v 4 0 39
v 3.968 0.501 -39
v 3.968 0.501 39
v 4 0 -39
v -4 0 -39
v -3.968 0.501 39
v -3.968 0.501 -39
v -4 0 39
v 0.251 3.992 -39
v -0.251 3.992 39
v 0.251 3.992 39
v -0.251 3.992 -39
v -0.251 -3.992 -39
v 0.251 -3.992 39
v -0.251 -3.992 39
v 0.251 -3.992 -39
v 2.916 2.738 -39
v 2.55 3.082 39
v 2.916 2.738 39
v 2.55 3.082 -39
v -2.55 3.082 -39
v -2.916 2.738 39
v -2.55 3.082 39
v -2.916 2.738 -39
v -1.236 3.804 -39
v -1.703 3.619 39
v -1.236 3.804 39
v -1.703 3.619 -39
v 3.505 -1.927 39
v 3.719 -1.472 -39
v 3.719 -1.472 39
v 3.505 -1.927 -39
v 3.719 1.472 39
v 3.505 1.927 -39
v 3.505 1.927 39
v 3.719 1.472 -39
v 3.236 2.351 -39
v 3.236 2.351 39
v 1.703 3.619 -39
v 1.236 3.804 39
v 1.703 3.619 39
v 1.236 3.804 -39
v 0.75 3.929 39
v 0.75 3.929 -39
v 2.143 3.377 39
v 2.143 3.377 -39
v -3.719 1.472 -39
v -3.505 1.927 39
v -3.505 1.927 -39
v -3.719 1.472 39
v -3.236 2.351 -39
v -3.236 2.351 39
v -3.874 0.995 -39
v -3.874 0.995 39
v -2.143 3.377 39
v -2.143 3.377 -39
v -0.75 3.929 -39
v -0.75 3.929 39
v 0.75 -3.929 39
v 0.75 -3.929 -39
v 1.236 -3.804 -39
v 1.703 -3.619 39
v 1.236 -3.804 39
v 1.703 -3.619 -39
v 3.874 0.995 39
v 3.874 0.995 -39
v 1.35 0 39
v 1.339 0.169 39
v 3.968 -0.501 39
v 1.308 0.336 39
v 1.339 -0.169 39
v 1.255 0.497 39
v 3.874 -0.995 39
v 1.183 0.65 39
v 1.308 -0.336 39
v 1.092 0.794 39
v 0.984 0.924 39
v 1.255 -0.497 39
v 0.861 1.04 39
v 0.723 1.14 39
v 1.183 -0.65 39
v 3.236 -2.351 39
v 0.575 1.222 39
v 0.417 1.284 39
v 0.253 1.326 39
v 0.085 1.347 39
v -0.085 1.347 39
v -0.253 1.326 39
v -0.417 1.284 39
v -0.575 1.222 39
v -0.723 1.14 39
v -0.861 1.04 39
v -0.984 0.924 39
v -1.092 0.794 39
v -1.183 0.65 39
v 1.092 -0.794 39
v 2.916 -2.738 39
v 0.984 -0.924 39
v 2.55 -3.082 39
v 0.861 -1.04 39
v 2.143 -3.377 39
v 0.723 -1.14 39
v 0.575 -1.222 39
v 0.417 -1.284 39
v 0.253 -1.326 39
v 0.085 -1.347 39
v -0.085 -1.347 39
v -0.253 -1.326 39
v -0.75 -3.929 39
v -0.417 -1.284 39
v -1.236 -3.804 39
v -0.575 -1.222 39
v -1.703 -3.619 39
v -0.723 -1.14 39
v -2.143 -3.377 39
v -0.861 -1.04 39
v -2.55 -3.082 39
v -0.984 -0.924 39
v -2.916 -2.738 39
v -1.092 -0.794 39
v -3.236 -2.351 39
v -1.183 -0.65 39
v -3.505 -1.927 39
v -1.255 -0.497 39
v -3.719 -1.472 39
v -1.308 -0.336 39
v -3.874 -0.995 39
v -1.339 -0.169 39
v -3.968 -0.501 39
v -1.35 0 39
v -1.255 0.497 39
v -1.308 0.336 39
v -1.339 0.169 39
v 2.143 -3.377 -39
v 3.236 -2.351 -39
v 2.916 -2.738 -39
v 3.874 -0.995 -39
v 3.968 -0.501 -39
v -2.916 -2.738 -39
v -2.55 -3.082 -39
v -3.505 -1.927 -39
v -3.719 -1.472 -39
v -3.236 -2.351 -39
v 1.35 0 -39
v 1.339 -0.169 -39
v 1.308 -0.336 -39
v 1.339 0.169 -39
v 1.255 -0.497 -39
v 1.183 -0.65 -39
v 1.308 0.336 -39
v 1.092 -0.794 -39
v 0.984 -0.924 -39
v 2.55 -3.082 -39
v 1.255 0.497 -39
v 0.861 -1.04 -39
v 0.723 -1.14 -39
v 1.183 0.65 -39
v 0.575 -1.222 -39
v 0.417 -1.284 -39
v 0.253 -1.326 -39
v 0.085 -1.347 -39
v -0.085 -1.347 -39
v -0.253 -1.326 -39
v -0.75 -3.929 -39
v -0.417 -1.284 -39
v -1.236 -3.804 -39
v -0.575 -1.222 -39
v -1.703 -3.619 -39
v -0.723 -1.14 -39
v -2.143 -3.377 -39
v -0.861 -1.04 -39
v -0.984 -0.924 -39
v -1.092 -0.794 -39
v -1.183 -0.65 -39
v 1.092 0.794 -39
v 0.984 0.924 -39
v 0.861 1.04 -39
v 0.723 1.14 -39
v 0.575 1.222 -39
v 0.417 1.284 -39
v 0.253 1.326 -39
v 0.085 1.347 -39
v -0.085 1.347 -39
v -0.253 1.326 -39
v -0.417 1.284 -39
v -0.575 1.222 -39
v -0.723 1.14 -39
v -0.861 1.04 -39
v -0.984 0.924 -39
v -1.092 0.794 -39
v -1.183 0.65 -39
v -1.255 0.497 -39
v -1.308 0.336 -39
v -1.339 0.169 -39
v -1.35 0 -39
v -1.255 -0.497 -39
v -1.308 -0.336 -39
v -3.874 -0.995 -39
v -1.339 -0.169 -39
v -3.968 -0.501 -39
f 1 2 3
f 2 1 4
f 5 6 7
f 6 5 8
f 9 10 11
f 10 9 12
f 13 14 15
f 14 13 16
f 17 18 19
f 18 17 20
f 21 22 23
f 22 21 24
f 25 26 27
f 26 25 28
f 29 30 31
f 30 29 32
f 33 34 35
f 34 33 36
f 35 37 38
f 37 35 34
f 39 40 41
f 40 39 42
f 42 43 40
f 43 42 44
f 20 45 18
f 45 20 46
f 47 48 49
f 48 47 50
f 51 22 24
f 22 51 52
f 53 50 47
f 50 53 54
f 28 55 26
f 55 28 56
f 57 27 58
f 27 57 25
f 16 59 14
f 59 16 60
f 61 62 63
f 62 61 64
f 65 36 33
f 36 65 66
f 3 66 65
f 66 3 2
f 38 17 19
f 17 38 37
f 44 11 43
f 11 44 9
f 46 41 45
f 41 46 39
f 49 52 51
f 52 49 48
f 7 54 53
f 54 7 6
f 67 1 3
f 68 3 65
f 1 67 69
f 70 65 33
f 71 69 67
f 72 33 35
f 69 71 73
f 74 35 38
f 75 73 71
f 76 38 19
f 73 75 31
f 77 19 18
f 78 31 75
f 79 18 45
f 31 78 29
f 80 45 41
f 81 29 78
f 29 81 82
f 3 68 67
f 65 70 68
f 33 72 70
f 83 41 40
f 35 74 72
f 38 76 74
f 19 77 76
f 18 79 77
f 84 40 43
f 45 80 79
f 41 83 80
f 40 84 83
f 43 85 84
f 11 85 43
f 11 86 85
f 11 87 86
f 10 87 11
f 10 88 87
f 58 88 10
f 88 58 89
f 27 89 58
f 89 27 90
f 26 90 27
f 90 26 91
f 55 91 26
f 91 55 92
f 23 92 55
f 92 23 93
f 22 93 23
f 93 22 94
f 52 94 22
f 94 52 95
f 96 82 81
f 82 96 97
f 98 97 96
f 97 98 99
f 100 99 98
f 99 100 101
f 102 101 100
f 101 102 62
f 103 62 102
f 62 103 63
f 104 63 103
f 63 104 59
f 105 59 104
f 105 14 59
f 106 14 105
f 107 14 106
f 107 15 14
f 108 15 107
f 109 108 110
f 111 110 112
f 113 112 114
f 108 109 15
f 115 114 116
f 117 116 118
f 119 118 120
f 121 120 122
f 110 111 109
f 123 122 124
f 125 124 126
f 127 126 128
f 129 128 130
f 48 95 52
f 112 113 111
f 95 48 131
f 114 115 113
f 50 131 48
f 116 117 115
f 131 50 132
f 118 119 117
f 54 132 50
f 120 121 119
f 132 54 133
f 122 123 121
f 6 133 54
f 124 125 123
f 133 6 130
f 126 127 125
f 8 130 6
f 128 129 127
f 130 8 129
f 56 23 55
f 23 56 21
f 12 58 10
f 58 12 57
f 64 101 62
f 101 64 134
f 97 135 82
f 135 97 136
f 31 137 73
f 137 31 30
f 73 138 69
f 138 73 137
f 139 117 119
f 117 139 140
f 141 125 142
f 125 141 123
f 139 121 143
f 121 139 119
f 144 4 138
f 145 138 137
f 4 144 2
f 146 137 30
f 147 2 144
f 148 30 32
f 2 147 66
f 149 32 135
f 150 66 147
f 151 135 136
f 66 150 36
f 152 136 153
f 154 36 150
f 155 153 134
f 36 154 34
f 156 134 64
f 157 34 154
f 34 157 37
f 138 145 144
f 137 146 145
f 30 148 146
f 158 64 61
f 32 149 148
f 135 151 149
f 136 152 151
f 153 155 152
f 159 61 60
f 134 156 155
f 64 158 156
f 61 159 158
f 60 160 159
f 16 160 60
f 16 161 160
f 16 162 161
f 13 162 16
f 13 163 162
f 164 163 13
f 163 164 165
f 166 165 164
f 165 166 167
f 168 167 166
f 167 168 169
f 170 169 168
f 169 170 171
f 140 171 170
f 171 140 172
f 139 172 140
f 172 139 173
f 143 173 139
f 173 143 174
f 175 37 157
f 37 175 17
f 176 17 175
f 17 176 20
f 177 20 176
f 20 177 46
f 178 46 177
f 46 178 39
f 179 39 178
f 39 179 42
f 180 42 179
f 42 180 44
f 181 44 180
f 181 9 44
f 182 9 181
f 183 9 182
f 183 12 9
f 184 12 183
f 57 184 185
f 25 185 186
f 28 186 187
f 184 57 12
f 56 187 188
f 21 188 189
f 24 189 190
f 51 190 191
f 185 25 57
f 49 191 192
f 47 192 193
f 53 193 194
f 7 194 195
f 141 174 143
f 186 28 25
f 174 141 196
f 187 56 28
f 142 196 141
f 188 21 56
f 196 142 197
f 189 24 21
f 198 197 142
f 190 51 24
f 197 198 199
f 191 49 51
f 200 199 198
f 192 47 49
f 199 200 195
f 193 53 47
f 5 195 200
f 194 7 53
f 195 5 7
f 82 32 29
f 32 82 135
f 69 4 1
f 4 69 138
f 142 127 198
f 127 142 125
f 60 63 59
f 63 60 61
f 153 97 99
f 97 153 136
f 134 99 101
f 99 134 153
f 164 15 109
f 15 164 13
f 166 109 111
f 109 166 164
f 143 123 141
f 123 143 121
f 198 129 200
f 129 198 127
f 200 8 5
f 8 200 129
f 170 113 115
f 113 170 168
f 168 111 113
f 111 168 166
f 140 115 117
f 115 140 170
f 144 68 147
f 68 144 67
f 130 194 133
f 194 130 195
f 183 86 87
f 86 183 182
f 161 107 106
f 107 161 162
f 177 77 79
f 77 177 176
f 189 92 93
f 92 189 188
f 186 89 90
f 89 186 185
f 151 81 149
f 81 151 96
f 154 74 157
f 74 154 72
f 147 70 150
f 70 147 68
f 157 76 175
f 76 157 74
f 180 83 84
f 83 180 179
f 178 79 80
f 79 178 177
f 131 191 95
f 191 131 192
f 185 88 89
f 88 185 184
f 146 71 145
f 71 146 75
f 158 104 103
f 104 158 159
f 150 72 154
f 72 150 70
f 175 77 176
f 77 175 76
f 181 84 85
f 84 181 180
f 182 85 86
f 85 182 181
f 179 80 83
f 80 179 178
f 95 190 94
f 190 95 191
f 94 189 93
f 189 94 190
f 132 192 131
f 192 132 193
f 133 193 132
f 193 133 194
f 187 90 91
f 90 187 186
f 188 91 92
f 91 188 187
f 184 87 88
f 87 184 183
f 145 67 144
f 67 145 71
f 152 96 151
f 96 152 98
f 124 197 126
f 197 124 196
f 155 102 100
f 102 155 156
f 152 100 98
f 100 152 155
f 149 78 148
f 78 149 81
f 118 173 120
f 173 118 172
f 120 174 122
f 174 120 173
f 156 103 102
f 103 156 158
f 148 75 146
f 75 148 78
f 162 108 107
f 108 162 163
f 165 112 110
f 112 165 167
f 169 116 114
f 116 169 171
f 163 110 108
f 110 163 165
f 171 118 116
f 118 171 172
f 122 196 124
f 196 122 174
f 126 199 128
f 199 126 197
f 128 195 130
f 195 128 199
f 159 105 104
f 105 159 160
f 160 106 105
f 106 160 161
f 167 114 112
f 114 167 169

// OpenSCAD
$fn = 50;


difference() {
	union() {
		translate(v = [0, 0, -39.0000000000]) {
			cylinder(h = 78, r = 4.0000000000);
		}
	}
	union() {
		translate(v = [0, 0, -100.0000000000]) {
			cylinder(h = 200, r = 1.3500000000);
		}
	}
}
